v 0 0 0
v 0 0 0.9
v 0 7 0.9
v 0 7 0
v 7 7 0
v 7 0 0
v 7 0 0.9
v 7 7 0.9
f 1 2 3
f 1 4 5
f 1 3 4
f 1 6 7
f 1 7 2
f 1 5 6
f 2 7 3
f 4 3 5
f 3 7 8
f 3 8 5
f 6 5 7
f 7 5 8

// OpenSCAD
/* Warning, this is a very basic generator with a lot of approximation 
input data : [VQFN, ZZX, 7x7x0.9mm, 48, , A, C04-00535A]
generated by com.zoubworld.electronics.cad.model3d.Basic
Date : Sun Feb 15 10:50:48 CET 2026
*/

//body
color("black")
translate([0,0,0])
cube([7.0,7.0,0.9], center=false);
